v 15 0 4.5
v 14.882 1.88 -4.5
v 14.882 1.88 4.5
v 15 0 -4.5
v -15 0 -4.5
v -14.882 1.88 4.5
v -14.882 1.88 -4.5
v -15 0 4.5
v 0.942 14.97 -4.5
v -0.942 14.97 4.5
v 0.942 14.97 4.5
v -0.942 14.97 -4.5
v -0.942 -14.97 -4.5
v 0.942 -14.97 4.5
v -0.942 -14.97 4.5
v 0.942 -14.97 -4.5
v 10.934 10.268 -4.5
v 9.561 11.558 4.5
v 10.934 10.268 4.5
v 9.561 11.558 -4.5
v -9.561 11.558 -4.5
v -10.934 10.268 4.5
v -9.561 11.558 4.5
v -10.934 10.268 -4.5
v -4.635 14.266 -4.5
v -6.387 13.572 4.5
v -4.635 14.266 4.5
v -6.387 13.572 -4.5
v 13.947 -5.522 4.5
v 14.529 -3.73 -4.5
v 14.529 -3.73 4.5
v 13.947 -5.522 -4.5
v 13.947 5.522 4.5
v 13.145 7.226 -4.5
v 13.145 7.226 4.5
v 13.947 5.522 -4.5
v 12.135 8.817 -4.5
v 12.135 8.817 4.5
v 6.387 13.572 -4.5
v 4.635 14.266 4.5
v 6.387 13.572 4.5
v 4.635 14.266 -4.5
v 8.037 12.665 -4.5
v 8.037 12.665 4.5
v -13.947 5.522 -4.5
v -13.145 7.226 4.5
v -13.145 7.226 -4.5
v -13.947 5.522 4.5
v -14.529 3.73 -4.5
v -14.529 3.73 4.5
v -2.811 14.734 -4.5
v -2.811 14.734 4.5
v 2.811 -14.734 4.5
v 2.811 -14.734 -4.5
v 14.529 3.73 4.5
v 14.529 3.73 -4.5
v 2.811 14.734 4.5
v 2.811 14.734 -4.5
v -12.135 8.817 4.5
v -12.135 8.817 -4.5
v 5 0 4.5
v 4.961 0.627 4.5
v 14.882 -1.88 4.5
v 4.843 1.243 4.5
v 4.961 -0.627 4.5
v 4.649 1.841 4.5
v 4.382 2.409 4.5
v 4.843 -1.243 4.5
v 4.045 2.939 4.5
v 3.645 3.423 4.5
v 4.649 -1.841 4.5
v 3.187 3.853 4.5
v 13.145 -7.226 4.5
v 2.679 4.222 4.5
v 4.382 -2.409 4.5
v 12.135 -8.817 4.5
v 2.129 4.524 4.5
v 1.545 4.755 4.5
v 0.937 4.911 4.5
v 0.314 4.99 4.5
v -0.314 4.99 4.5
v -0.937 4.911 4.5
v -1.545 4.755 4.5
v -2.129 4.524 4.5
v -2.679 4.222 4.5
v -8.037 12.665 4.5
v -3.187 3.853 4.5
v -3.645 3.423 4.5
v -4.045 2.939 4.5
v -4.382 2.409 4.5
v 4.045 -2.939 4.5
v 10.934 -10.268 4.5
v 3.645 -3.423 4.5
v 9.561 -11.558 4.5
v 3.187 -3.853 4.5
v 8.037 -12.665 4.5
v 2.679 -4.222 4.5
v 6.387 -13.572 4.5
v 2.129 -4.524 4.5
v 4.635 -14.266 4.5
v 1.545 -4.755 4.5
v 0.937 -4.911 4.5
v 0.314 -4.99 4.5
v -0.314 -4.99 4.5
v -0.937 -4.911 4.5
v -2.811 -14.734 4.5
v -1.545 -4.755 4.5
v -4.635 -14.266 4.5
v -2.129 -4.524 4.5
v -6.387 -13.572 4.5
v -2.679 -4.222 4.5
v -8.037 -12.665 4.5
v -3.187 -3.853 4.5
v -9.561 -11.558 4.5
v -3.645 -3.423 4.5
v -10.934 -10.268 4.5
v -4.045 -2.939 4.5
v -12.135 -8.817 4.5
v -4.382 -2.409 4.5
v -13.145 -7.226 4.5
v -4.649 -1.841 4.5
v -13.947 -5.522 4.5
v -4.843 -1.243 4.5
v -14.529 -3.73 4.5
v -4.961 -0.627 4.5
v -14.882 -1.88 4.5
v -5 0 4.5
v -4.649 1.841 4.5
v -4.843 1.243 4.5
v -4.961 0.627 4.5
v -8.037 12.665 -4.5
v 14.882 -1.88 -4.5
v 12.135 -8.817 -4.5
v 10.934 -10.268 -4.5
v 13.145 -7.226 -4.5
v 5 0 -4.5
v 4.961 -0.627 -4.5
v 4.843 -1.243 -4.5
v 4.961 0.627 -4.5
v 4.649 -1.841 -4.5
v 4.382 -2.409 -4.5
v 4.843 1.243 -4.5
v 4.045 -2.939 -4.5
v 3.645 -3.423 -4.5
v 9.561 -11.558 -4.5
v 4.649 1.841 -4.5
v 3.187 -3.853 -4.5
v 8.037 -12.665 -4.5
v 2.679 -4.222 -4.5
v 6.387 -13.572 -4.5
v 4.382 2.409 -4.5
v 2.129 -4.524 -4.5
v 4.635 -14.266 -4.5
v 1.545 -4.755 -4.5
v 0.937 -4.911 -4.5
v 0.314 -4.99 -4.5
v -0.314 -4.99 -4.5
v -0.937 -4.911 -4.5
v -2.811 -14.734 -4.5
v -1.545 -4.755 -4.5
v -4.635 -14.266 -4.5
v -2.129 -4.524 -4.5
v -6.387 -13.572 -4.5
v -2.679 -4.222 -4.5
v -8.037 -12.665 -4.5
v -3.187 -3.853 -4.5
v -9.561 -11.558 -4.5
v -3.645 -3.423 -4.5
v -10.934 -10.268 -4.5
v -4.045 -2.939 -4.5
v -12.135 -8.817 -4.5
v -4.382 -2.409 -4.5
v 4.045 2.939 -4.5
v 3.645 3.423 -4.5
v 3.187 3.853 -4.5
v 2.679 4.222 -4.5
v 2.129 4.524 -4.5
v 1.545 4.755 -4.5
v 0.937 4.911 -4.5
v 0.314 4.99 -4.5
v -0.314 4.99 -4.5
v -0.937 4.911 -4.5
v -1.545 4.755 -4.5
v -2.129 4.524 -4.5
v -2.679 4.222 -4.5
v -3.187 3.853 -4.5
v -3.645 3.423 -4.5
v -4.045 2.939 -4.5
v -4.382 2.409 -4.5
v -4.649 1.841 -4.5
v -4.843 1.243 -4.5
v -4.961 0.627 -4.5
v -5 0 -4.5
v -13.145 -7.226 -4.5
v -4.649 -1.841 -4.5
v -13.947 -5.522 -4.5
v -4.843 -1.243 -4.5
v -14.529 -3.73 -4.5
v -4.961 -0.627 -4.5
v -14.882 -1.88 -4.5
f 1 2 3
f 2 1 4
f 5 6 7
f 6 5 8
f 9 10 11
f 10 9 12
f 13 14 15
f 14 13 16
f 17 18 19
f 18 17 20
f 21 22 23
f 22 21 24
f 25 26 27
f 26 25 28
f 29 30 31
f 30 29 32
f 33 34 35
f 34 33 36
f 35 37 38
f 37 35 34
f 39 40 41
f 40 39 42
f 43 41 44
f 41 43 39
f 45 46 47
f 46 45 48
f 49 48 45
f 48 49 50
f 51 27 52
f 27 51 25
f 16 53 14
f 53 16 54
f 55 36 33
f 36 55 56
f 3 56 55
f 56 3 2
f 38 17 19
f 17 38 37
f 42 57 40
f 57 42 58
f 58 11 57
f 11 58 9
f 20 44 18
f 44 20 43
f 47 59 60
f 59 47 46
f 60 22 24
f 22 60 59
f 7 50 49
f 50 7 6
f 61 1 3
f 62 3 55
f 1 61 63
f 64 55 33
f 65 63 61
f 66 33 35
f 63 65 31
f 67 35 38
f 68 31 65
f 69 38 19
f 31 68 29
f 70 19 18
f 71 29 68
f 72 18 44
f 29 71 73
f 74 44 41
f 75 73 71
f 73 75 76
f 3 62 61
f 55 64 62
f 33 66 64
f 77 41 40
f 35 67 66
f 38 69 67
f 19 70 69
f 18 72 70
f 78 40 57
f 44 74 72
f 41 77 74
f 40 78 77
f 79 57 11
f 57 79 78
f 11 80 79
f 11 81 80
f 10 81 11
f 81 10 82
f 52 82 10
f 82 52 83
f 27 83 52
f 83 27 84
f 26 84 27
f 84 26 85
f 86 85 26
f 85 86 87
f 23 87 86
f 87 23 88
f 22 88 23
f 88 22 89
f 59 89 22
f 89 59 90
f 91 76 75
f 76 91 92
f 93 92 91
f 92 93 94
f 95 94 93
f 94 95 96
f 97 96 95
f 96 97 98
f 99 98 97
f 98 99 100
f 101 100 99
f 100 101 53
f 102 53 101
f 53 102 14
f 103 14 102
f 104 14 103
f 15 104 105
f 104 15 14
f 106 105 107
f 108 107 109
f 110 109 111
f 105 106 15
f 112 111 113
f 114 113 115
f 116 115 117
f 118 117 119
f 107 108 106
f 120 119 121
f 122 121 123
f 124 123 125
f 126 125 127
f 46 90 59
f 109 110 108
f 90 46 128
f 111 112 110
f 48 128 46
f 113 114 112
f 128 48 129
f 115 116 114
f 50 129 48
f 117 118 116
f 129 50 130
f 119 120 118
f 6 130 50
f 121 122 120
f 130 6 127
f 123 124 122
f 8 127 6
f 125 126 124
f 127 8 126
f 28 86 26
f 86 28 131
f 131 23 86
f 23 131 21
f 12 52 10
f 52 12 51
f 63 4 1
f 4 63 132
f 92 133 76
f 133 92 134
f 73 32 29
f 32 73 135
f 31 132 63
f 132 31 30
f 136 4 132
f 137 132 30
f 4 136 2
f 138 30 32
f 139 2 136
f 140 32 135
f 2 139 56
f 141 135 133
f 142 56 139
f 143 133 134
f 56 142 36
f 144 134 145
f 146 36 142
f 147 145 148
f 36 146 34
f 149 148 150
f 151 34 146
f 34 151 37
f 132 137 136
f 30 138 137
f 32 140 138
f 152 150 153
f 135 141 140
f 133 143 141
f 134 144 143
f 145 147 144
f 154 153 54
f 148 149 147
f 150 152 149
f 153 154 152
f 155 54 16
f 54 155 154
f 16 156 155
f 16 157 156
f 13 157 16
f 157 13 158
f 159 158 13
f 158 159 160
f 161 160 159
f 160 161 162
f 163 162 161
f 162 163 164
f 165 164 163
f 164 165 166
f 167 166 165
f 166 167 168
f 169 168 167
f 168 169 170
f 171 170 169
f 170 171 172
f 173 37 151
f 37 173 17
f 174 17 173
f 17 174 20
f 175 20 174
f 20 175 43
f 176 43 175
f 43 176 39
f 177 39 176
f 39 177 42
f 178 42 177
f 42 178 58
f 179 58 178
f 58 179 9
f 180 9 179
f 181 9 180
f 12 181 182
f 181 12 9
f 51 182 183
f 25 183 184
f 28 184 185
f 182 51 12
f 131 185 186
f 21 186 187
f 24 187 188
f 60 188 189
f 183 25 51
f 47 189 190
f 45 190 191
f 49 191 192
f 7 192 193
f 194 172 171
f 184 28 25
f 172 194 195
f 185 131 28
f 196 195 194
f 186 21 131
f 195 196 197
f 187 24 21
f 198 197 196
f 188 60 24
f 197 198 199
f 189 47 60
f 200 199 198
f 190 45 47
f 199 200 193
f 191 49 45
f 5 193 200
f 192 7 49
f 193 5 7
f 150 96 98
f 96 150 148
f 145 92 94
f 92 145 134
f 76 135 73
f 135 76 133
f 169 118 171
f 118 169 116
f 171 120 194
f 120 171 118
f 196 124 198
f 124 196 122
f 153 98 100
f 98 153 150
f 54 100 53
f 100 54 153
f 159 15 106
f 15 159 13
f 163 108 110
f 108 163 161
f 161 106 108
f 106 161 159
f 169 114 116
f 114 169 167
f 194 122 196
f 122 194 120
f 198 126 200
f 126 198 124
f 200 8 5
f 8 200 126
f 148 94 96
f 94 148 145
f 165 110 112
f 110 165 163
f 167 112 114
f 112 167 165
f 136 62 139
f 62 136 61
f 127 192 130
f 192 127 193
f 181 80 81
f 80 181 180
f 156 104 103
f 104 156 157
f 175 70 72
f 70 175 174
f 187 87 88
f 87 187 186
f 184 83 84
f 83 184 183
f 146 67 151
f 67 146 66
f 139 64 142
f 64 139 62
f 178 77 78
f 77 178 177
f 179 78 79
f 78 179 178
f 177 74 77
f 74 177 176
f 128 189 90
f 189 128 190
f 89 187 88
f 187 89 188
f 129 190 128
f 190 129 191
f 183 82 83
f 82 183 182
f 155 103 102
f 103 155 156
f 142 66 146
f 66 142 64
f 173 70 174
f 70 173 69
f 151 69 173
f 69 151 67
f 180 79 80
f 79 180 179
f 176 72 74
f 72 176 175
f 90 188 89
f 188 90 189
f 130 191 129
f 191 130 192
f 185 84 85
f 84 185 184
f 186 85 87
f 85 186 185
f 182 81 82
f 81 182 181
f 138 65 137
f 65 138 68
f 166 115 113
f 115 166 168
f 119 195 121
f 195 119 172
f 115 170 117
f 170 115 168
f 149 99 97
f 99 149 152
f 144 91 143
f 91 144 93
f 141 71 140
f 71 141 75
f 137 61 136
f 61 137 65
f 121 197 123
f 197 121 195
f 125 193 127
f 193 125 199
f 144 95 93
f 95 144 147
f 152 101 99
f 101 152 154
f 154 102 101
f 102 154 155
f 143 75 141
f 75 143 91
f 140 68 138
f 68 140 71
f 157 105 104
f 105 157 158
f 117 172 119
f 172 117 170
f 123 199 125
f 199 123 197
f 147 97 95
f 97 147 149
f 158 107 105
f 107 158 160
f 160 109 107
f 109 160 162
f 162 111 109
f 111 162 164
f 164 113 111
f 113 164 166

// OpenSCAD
$fn = 50;


difference() {
	union() {
		translate(v = [0, 0, -4.5000000000]) {
			cylinder(h = 9, r = 15.0000000000);
		}
	}
	union() {
		translate(v = [0, 0, -100.0000000000]) {
			cylinder(h = 200, r = 5.0000000000);
		}
	}
}
